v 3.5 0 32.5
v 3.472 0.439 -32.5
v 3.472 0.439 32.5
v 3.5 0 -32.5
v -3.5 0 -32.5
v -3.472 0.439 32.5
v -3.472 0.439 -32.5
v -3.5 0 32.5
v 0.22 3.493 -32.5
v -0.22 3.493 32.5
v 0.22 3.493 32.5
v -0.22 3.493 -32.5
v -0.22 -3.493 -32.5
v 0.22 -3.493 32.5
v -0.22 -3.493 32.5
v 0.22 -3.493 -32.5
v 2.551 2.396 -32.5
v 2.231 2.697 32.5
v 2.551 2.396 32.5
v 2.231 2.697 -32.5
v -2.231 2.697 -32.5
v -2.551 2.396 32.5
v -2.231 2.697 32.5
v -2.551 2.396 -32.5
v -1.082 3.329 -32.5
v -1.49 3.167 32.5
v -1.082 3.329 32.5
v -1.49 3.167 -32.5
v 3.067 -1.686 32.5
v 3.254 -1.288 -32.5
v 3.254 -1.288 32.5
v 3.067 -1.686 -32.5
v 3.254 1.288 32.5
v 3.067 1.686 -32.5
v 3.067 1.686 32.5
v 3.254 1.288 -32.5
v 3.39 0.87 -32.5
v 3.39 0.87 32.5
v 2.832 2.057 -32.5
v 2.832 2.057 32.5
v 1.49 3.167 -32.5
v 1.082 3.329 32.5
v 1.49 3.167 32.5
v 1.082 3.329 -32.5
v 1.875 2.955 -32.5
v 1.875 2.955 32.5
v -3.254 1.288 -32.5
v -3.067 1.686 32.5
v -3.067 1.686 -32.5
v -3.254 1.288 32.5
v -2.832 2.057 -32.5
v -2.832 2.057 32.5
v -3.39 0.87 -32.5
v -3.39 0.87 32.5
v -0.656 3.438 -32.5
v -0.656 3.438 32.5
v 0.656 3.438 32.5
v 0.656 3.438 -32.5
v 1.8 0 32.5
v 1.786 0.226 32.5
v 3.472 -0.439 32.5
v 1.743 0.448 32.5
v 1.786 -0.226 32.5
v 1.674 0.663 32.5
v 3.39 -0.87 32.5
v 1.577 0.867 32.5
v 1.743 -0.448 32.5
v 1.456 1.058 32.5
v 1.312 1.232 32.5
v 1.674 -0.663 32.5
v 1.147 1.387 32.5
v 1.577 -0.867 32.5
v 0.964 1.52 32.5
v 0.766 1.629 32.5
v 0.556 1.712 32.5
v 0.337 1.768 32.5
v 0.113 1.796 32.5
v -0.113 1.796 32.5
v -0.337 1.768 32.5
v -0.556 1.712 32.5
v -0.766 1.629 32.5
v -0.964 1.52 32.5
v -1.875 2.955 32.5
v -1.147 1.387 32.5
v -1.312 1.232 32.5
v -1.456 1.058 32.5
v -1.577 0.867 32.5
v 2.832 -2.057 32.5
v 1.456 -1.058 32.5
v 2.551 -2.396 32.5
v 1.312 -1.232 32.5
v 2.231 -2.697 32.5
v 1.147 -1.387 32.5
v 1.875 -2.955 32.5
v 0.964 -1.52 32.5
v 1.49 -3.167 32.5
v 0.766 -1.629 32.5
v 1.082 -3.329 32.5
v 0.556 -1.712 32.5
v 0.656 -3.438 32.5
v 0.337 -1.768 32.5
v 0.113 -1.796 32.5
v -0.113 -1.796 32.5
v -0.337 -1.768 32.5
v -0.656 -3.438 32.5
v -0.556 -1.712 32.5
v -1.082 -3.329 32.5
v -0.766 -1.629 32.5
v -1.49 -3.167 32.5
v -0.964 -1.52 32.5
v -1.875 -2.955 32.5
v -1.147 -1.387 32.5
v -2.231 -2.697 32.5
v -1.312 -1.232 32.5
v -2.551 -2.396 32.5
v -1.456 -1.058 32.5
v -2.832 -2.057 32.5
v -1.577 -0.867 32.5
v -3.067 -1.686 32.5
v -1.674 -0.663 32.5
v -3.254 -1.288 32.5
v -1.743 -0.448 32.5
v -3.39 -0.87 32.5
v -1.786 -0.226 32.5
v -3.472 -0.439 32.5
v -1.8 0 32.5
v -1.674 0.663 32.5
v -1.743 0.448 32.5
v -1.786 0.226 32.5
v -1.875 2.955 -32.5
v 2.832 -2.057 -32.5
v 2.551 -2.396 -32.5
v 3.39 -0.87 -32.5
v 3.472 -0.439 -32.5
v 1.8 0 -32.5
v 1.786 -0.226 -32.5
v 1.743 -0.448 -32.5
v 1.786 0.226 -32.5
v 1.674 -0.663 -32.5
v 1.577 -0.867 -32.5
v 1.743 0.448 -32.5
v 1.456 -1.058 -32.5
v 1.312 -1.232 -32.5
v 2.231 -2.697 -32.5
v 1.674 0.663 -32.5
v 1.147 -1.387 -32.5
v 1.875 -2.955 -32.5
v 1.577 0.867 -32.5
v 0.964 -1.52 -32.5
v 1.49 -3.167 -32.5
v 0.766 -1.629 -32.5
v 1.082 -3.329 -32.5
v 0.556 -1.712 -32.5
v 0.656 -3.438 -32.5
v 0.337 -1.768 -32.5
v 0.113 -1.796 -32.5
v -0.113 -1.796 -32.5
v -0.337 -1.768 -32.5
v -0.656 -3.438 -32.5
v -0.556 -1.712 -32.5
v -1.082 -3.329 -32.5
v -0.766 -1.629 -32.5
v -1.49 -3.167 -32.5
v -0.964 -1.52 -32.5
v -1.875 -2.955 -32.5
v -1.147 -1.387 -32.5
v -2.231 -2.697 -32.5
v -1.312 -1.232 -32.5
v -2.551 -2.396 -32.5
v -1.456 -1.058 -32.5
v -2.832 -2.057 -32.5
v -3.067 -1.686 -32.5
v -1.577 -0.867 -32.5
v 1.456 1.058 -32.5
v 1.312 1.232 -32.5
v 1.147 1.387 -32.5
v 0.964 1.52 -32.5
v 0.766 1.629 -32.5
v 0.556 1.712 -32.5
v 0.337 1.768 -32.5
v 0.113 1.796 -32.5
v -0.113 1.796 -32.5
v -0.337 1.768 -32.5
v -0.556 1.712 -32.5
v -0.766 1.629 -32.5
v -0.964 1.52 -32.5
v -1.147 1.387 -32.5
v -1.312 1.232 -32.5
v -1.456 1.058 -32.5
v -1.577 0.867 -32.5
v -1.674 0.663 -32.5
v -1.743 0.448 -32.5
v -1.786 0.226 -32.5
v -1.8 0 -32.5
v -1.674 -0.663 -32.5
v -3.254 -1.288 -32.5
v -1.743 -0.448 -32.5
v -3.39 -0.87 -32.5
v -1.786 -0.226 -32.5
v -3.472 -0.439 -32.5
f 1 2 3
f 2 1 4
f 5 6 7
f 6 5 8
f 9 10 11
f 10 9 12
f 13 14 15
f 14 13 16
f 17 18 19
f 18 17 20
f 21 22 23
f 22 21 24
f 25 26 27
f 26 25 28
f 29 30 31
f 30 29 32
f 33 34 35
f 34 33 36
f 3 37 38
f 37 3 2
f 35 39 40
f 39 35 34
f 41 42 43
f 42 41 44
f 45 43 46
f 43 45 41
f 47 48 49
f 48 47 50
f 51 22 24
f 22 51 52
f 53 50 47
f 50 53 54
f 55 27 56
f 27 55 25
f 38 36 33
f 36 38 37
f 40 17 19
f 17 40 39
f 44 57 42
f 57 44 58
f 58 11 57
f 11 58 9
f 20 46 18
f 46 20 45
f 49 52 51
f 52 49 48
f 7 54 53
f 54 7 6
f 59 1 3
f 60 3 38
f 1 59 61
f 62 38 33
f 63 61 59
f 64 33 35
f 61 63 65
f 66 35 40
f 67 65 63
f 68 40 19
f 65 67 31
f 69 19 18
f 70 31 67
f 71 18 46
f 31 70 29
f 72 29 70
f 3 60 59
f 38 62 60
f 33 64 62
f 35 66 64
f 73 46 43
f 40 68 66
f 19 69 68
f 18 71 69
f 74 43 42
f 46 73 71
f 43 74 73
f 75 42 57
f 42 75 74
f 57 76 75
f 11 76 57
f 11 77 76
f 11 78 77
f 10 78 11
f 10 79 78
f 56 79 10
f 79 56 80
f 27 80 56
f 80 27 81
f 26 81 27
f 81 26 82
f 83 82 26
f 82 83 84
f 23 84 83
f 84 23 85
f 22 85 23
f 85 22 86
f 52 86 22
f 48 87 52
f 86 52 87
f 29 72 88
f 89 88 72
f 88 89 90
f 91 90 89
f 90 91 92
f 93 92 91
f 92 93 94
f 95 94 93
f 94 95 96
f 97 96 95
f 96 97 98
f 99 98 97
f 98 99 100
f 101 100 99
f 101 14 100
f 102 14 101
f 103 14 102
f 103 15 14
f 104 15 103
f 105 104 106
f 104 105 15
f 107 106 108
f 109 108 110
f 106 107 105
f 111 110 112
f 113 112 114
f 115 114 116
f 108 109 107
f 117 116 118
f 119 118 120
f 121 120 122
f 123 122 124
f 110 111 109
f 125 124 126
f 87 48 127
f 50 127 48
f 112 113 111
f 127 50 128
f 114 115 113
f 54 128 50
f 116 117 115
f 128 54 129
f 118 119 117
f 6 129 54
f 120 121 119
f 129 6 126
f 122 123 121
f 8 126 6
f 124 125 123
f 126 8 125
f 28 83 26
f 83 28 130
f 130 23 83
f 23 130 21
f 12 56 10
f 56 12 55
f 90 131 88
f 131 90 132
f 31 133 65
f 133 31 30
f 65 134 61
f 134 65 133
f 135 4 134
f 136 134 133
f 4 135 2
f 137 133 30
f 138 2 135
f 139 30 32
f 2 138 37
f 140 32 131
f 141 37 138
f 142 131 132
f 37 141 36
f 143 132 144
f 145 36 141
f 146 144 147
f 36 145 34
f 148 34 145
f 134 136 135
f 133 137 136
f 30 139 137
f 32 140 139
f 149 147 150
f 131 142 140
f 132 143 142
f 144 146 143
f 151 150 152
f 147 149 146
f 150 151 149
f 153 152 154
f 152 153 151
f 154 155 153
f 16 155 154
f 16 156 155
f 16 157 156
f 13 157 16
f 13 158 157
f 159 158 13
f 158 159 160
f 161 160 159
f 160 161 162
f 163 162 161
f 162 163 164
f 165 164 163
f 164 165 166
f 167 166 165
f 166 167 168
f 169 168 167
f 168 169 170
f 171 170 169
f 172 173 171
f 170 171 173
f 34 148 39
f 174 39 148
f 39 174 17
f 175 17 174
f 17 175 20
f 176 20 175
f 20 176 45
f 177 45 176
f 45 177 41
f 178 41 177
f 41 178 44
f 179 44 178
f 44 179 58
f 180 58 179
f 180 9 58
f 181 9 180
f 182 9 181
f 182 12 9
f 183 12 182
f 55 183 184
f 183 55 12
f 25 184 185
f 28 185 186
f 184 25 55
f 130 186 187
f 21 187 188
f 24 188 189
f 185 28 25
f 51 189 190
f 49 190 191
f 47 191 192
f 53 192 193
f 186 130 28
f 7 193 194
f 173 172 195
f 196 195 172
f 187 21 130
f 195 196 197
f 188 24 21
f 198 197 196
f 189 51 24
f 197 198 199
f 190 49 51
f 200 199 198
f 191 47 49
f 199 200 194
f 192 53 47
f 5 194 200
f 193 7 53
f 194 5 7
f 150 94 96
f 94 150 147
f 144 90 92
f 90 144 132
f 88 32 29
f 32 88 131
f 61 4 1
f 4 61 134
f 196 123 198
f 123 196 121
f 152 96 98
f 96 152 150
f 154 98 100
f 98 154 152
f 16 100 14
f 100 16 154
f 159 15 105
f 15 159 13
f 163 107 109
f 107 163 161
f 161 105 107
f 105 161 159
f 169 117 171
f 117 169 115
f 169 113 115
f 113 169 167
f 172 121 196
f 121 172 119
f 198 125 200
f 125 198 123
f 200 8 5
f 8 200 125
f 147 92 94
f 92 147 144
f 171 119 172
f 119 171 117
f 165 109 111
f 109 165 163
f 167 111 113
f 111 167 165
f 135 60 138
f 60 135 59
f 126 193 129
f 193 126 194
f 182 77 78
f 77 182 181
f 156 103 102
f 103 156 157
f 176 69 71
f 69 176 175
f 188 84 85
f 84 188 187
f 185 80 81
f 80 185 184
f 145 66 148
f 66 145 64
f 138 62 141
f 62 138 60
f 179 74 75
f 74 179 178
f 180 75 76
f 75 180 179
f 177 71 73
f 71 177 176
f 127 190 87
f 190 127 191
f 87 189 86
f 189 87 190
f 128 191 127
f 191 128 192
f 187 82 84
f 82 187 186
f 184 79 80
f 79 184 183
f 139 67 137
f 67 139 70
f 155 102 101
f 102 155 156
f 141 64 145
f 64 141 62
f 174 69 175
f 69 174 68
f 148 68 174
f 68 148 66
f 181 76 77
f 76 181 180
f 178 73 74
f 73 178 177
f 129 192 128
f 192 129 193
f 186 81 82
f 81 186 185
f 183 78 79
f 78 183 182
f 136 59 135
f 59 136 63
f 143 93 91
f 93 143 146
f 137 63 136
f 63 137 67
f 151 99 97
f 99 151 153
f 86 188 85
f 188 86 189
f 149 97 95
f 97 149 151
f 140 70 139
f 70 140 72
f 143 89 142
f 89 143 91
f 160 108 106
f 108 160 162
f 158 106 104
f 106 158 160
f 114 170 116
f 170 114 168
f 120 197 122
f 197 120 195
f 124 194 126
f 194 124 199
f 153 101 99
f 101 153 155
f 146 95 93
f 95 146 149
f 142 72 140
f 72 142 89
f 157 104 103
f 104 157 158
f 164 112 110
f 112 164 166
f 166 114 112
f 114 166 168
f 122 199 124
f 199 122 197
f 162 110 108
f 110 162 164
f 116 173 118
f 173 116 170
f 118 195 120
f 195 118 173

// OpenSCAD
$fn = 50;


difference() {
	union() {
		translate(v = [0, 0, -32.5000000000]) {
			cylinder(h = 65, r = 3.5000000000);
		}
	}
	union() {
		translate(v = [0, 0, -100.0000000000]) {
			cylinder(h = 200, r = 1.8000000000);
		}
	}
}
